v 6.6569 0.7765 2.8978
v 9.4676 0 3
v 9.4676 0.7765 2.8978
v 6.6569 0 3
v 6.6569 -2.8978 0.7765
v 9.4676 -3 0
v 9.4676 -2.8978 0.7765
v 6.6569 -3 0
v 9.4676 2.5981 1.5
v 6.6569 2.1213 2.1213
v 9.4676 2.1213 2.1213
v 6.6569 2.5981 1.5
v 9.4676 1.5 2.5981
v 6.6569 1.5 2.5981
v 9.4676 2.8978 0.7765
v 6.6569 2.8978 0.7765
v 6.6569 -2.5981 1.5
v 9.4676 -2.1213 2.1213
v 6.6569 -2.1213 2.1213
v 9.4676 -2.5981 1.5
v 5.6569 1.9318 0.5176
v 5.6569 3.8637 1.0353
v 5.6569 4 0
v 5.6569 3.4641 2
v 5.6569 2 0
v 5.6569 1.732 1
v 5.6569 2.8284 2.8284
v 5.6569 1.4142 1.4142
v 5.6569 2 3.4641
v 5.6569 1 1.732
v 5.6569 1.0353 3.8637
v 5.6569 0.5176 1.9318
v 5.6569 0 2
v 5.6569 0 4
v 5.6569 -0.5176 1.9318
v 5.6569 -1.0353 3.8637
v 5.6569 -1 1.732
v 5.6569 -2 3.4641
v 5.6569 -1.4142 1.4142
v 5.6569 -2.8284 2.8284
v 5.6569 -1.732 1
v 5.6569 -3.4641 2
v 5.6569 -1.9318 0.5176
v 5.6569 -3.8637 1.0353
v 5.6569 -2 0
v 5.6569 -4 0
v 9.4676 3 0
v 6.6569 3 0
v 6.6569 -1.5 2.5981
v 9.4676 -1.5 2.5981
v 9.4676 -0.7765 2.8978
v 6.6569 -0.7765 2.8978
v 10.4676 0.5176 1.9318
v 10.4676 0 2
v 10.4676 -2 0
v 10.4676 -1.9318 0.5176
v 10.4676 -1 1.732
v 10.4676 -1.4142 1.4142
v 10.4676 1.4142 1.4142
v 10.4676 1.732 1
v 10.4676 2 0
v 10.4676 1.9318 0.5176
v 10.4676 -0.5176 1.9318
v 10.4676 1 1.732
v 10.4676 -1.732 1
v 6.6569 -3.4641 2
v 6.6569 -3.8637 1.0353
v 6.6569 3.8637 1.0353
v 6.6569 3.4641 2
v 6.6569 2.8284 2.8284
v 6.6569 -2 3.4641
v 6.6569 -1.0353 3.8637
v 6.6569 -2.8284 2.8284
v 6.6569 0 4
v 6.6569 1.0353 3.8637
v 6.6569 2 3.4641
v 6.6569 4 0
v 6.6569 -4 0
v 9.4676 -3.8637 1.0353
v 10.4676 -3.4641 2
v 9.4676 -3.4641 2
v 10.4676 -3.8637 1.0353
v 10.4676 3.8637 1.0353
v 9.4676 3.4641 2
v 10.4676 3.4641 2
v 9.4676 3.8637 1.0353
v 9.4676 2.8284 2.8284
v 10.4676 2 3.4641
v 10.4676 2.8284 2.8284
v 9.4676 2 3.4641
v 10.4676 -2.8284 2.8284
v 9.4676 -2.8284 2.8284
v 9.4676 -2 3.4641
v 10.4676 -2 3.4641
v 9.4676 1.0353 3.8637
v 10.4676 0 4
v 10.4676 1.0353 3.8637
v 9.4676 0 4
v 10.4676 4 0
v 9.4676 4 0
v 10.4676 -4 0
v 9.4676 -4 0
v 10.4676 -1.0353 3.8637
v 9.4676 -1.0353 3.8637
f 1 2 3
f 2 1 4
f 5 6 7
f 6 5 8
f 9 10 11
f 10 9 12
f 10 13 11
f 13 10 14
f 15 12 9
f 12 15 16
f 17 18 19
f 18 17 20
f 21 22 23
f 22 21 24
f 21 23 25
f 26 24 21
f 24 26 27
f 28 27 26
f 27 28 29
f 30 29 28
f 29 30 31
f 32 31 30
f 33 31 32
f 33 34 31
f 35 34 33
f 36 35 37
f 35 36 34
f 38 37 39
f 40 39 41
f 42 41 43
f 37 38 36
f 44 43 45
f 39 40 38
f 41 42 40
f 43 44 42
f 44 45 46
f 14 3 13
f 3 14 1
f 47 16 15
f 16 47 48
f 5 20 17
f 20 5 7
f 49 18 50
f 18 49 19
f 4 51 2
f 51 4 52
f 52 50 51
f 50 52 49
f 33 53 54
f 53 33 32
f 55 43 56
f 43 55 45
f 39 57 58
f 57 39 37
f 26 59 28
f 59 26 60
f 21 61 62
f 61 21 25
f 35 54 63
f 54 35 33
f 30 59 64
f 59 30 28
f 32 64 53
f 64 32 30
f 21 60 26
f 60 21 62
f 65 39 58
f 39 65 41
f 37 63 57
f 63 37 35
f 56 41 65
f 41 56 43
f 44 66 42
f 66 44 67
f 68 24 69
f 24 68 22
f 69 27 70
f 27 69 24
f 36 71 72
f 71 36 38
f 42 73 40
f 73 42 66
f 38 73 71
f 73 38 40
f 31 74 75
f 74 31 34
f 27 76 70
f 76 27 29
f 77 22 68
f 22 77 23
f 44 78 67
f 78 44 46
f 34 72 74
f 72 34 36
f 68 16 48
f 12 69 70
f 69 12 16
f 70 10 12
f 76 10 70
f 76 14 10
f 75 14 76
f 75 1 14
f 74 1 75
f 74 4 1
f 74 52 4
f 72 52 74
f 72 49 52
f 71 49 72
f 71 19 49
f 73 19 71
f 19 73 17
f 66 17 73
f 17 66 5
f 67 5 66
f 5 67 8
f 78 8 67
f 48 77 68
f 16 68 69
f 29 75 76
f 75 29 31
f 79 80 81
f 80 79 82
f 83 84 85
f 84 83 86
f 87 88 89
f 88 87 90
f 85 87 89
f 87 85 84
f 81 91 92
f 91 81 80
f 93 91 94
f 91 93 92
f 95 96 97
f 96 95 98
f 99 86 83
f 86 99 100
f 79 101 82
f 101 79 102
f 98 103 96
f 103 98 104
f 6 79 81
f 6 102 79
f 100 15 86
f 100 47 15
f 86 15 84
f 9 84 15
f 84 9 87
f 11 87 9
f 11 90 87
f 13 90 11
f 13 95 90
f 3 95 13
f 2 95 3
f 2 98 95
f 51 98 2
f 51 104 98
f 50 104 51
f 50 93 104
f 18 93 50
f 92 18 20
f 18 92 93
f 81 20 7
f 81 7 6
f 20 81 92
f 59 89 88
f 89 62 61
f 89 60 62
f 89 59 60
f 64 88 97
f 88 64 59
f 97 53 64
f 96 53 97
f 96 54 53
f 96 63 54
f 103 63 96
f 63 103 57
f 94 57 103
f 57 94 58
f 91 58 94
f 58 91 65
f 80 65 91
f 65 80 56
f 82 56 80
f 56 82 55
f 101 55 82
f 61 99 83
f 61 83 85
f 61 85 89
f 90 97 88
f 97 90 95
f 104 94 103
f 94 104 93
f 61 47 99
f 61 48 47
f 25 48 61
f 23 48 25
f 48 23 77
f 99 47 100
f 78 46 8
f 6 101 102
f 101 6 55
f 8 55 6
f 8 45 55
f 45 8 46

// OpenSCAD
// file: ../build_environments.scad
// build_environments.scad: modules to build level sections
//

module pool(diameter=10.0, wall_height=2.0, step_width=3.0, connections=[])
{
    difference() {
        union() {
        difference() {
            cylinder(h=0.5,r1=diameter+step_width,r2=diameter+step_width,$fn=48);
            translate([0,0,-0.1])
                cylinder(h=0.7,r1=diameter,r2=diameter,$fn=48);
        }
        difference() {
            cylinder(h=wall_height,r1=diameter+step_width+1.0,r2=diameter+step_width+1.0,$fn=48);
            translate([0,0,-0.1])
                cylinder(h=wall_height+0.2,r1=diameter+step_width,r2=diameter+step_width,$fn=48);
        }
        }
    
        for (c = connections)
        {
            rotate([0,90,0]) {
                angle = atan2(c[1],c[0]);
                rotate([-angle,0,0]) {
                    cylinder(h=diameter+5.0,r1=c[2],r2=c[2],$fn=48);
                }
            }
        }
    }
}

module straight(length=10.0, width=2.0, dy1=0.0, dy2=0.0, dz=0.0)
{
    dims = [0, 0, 0, 0, 0, (dz/length)];
    matrix = [
        [ 1, dims[0], dims[1], 0 ],
        [ dims[2], 1, dims[4], 0 ],
        [ dims[5], dims[3], 1, 0 ],
        [ 0, 0, 0, 1 ]
    ];
    multmatrix(matrix)
    difference() {
        translate([dy1,0,0])
        union() {
            rotate([0,90,0]) {
                difference() {
                    cylinder(h=(length-dy1-dy2),r1=width+1.0,r2=width+1.0,$fn=24);
                    translate([0,0,-0.1])
                        cylinder(h=(length-dy1-dy2+0.2),r1=width,r2=width,$fn=24);
                }
                difference() {
                    cylinder(h=1.0,r1=width+2.0,r2=width+2.0,$fn=24);
                    translate([0,0,-0.1])
                        cylinder(h=1.2,r1=width,r2=width,$fn=24);
                }
                translate([0,0,(length-dy1-dy2)-1.0]) {
                    difference() {
                        cylinder(h=1.0,r1=width+2.0,r2=width+2.0,$fn=24);
                        translate([0,0,-0.1])
                            cylinder(h=1.2,r1=width,r2=width,$fn=24);
                    }
                }
            }
        }
        translate([0,0,-(2*width+4.0)/2])
            cube([3*length,3*length,2*width+4.0],center=true);
    }
}

module curve(p0=[0,0], center=[0,0], dir=1, angle=0.0, width=2.0)
{
    radius = sqrt((p0[0]-center[0])*(p0[0]-center[0]) + (p0[1]-center[1])*(p0[1]-center[1]));
    if (dir == 0) {
        difference() {
            rotate([0,0,-90])
            difference() {
                rotate_extrude(angle = angle, convexity = 10, $fn=32)
                    translate([radius, 0, 0])
                        circle(r = width+1.0,$fn=24);
                rotate([0,0,-1.0])
                    rotate_extrude(angle = angle+2.0, convexity = 10, $fn=32)
                        translate([radius, 0, 0])
                            circle(r = width,$fn=24);
            }
            translate([0,0,-(2*width+4.0)/2])
                cube([5*radius,5*radius,2*width+4.0],center=true);
        }
    }
    else {
        difference() {
            rotate([0,0,90])
            difference() {
                rotate_extrude(angle = -angle, convexity = 10, $fn=32)
                    translate([radius, 0, 0])
                        circle(r = width+1.0,$fn=24);
                rotate([0,0,1.0])
                    rotate_extrude(angle = -angle-2.0, convexity = 10, $fn=32)
                        translate([radius, 0, 0])
                            circle(r = width,$fn=24);
            }
            translate([0,0,-(2*width+4.0)/2])
                cube([5*radius,5*radius,2*width+4.0],center=true);
        }
    }

}

// test pool
//pool(diameter=12.0000, wall_height=3.0000, step_width=3.0000, connections=[[0.0000,-26.0000,2.0000], [23.6074,0.0000,2.0000]]);

// test straight, slope
//straight(length=26.0000, width=2.0000, dy1=11.8322, dy2=6.7082, dz=0.0000);
//straight(length=29.1549, width=12.0000, dy1=0.0000, dy2=0.0000, dz=-15.0000);

// test curve
//curve(p0=[23.6074, 0.0000], center=[23.6074, 5.0000], dir=0, angle=60.1011, width=2.0000);
//curve(p0=[33.6426, 12.4219], center=[37.9771, 9.9295], dir=1, angle=120.4627, width=2.0000);
// main file
use <../build_environments.scad>;
straight(length=16.1245, width=2.0000, dy1=5.6569, dy2=5.6569, dz=0.0000);
